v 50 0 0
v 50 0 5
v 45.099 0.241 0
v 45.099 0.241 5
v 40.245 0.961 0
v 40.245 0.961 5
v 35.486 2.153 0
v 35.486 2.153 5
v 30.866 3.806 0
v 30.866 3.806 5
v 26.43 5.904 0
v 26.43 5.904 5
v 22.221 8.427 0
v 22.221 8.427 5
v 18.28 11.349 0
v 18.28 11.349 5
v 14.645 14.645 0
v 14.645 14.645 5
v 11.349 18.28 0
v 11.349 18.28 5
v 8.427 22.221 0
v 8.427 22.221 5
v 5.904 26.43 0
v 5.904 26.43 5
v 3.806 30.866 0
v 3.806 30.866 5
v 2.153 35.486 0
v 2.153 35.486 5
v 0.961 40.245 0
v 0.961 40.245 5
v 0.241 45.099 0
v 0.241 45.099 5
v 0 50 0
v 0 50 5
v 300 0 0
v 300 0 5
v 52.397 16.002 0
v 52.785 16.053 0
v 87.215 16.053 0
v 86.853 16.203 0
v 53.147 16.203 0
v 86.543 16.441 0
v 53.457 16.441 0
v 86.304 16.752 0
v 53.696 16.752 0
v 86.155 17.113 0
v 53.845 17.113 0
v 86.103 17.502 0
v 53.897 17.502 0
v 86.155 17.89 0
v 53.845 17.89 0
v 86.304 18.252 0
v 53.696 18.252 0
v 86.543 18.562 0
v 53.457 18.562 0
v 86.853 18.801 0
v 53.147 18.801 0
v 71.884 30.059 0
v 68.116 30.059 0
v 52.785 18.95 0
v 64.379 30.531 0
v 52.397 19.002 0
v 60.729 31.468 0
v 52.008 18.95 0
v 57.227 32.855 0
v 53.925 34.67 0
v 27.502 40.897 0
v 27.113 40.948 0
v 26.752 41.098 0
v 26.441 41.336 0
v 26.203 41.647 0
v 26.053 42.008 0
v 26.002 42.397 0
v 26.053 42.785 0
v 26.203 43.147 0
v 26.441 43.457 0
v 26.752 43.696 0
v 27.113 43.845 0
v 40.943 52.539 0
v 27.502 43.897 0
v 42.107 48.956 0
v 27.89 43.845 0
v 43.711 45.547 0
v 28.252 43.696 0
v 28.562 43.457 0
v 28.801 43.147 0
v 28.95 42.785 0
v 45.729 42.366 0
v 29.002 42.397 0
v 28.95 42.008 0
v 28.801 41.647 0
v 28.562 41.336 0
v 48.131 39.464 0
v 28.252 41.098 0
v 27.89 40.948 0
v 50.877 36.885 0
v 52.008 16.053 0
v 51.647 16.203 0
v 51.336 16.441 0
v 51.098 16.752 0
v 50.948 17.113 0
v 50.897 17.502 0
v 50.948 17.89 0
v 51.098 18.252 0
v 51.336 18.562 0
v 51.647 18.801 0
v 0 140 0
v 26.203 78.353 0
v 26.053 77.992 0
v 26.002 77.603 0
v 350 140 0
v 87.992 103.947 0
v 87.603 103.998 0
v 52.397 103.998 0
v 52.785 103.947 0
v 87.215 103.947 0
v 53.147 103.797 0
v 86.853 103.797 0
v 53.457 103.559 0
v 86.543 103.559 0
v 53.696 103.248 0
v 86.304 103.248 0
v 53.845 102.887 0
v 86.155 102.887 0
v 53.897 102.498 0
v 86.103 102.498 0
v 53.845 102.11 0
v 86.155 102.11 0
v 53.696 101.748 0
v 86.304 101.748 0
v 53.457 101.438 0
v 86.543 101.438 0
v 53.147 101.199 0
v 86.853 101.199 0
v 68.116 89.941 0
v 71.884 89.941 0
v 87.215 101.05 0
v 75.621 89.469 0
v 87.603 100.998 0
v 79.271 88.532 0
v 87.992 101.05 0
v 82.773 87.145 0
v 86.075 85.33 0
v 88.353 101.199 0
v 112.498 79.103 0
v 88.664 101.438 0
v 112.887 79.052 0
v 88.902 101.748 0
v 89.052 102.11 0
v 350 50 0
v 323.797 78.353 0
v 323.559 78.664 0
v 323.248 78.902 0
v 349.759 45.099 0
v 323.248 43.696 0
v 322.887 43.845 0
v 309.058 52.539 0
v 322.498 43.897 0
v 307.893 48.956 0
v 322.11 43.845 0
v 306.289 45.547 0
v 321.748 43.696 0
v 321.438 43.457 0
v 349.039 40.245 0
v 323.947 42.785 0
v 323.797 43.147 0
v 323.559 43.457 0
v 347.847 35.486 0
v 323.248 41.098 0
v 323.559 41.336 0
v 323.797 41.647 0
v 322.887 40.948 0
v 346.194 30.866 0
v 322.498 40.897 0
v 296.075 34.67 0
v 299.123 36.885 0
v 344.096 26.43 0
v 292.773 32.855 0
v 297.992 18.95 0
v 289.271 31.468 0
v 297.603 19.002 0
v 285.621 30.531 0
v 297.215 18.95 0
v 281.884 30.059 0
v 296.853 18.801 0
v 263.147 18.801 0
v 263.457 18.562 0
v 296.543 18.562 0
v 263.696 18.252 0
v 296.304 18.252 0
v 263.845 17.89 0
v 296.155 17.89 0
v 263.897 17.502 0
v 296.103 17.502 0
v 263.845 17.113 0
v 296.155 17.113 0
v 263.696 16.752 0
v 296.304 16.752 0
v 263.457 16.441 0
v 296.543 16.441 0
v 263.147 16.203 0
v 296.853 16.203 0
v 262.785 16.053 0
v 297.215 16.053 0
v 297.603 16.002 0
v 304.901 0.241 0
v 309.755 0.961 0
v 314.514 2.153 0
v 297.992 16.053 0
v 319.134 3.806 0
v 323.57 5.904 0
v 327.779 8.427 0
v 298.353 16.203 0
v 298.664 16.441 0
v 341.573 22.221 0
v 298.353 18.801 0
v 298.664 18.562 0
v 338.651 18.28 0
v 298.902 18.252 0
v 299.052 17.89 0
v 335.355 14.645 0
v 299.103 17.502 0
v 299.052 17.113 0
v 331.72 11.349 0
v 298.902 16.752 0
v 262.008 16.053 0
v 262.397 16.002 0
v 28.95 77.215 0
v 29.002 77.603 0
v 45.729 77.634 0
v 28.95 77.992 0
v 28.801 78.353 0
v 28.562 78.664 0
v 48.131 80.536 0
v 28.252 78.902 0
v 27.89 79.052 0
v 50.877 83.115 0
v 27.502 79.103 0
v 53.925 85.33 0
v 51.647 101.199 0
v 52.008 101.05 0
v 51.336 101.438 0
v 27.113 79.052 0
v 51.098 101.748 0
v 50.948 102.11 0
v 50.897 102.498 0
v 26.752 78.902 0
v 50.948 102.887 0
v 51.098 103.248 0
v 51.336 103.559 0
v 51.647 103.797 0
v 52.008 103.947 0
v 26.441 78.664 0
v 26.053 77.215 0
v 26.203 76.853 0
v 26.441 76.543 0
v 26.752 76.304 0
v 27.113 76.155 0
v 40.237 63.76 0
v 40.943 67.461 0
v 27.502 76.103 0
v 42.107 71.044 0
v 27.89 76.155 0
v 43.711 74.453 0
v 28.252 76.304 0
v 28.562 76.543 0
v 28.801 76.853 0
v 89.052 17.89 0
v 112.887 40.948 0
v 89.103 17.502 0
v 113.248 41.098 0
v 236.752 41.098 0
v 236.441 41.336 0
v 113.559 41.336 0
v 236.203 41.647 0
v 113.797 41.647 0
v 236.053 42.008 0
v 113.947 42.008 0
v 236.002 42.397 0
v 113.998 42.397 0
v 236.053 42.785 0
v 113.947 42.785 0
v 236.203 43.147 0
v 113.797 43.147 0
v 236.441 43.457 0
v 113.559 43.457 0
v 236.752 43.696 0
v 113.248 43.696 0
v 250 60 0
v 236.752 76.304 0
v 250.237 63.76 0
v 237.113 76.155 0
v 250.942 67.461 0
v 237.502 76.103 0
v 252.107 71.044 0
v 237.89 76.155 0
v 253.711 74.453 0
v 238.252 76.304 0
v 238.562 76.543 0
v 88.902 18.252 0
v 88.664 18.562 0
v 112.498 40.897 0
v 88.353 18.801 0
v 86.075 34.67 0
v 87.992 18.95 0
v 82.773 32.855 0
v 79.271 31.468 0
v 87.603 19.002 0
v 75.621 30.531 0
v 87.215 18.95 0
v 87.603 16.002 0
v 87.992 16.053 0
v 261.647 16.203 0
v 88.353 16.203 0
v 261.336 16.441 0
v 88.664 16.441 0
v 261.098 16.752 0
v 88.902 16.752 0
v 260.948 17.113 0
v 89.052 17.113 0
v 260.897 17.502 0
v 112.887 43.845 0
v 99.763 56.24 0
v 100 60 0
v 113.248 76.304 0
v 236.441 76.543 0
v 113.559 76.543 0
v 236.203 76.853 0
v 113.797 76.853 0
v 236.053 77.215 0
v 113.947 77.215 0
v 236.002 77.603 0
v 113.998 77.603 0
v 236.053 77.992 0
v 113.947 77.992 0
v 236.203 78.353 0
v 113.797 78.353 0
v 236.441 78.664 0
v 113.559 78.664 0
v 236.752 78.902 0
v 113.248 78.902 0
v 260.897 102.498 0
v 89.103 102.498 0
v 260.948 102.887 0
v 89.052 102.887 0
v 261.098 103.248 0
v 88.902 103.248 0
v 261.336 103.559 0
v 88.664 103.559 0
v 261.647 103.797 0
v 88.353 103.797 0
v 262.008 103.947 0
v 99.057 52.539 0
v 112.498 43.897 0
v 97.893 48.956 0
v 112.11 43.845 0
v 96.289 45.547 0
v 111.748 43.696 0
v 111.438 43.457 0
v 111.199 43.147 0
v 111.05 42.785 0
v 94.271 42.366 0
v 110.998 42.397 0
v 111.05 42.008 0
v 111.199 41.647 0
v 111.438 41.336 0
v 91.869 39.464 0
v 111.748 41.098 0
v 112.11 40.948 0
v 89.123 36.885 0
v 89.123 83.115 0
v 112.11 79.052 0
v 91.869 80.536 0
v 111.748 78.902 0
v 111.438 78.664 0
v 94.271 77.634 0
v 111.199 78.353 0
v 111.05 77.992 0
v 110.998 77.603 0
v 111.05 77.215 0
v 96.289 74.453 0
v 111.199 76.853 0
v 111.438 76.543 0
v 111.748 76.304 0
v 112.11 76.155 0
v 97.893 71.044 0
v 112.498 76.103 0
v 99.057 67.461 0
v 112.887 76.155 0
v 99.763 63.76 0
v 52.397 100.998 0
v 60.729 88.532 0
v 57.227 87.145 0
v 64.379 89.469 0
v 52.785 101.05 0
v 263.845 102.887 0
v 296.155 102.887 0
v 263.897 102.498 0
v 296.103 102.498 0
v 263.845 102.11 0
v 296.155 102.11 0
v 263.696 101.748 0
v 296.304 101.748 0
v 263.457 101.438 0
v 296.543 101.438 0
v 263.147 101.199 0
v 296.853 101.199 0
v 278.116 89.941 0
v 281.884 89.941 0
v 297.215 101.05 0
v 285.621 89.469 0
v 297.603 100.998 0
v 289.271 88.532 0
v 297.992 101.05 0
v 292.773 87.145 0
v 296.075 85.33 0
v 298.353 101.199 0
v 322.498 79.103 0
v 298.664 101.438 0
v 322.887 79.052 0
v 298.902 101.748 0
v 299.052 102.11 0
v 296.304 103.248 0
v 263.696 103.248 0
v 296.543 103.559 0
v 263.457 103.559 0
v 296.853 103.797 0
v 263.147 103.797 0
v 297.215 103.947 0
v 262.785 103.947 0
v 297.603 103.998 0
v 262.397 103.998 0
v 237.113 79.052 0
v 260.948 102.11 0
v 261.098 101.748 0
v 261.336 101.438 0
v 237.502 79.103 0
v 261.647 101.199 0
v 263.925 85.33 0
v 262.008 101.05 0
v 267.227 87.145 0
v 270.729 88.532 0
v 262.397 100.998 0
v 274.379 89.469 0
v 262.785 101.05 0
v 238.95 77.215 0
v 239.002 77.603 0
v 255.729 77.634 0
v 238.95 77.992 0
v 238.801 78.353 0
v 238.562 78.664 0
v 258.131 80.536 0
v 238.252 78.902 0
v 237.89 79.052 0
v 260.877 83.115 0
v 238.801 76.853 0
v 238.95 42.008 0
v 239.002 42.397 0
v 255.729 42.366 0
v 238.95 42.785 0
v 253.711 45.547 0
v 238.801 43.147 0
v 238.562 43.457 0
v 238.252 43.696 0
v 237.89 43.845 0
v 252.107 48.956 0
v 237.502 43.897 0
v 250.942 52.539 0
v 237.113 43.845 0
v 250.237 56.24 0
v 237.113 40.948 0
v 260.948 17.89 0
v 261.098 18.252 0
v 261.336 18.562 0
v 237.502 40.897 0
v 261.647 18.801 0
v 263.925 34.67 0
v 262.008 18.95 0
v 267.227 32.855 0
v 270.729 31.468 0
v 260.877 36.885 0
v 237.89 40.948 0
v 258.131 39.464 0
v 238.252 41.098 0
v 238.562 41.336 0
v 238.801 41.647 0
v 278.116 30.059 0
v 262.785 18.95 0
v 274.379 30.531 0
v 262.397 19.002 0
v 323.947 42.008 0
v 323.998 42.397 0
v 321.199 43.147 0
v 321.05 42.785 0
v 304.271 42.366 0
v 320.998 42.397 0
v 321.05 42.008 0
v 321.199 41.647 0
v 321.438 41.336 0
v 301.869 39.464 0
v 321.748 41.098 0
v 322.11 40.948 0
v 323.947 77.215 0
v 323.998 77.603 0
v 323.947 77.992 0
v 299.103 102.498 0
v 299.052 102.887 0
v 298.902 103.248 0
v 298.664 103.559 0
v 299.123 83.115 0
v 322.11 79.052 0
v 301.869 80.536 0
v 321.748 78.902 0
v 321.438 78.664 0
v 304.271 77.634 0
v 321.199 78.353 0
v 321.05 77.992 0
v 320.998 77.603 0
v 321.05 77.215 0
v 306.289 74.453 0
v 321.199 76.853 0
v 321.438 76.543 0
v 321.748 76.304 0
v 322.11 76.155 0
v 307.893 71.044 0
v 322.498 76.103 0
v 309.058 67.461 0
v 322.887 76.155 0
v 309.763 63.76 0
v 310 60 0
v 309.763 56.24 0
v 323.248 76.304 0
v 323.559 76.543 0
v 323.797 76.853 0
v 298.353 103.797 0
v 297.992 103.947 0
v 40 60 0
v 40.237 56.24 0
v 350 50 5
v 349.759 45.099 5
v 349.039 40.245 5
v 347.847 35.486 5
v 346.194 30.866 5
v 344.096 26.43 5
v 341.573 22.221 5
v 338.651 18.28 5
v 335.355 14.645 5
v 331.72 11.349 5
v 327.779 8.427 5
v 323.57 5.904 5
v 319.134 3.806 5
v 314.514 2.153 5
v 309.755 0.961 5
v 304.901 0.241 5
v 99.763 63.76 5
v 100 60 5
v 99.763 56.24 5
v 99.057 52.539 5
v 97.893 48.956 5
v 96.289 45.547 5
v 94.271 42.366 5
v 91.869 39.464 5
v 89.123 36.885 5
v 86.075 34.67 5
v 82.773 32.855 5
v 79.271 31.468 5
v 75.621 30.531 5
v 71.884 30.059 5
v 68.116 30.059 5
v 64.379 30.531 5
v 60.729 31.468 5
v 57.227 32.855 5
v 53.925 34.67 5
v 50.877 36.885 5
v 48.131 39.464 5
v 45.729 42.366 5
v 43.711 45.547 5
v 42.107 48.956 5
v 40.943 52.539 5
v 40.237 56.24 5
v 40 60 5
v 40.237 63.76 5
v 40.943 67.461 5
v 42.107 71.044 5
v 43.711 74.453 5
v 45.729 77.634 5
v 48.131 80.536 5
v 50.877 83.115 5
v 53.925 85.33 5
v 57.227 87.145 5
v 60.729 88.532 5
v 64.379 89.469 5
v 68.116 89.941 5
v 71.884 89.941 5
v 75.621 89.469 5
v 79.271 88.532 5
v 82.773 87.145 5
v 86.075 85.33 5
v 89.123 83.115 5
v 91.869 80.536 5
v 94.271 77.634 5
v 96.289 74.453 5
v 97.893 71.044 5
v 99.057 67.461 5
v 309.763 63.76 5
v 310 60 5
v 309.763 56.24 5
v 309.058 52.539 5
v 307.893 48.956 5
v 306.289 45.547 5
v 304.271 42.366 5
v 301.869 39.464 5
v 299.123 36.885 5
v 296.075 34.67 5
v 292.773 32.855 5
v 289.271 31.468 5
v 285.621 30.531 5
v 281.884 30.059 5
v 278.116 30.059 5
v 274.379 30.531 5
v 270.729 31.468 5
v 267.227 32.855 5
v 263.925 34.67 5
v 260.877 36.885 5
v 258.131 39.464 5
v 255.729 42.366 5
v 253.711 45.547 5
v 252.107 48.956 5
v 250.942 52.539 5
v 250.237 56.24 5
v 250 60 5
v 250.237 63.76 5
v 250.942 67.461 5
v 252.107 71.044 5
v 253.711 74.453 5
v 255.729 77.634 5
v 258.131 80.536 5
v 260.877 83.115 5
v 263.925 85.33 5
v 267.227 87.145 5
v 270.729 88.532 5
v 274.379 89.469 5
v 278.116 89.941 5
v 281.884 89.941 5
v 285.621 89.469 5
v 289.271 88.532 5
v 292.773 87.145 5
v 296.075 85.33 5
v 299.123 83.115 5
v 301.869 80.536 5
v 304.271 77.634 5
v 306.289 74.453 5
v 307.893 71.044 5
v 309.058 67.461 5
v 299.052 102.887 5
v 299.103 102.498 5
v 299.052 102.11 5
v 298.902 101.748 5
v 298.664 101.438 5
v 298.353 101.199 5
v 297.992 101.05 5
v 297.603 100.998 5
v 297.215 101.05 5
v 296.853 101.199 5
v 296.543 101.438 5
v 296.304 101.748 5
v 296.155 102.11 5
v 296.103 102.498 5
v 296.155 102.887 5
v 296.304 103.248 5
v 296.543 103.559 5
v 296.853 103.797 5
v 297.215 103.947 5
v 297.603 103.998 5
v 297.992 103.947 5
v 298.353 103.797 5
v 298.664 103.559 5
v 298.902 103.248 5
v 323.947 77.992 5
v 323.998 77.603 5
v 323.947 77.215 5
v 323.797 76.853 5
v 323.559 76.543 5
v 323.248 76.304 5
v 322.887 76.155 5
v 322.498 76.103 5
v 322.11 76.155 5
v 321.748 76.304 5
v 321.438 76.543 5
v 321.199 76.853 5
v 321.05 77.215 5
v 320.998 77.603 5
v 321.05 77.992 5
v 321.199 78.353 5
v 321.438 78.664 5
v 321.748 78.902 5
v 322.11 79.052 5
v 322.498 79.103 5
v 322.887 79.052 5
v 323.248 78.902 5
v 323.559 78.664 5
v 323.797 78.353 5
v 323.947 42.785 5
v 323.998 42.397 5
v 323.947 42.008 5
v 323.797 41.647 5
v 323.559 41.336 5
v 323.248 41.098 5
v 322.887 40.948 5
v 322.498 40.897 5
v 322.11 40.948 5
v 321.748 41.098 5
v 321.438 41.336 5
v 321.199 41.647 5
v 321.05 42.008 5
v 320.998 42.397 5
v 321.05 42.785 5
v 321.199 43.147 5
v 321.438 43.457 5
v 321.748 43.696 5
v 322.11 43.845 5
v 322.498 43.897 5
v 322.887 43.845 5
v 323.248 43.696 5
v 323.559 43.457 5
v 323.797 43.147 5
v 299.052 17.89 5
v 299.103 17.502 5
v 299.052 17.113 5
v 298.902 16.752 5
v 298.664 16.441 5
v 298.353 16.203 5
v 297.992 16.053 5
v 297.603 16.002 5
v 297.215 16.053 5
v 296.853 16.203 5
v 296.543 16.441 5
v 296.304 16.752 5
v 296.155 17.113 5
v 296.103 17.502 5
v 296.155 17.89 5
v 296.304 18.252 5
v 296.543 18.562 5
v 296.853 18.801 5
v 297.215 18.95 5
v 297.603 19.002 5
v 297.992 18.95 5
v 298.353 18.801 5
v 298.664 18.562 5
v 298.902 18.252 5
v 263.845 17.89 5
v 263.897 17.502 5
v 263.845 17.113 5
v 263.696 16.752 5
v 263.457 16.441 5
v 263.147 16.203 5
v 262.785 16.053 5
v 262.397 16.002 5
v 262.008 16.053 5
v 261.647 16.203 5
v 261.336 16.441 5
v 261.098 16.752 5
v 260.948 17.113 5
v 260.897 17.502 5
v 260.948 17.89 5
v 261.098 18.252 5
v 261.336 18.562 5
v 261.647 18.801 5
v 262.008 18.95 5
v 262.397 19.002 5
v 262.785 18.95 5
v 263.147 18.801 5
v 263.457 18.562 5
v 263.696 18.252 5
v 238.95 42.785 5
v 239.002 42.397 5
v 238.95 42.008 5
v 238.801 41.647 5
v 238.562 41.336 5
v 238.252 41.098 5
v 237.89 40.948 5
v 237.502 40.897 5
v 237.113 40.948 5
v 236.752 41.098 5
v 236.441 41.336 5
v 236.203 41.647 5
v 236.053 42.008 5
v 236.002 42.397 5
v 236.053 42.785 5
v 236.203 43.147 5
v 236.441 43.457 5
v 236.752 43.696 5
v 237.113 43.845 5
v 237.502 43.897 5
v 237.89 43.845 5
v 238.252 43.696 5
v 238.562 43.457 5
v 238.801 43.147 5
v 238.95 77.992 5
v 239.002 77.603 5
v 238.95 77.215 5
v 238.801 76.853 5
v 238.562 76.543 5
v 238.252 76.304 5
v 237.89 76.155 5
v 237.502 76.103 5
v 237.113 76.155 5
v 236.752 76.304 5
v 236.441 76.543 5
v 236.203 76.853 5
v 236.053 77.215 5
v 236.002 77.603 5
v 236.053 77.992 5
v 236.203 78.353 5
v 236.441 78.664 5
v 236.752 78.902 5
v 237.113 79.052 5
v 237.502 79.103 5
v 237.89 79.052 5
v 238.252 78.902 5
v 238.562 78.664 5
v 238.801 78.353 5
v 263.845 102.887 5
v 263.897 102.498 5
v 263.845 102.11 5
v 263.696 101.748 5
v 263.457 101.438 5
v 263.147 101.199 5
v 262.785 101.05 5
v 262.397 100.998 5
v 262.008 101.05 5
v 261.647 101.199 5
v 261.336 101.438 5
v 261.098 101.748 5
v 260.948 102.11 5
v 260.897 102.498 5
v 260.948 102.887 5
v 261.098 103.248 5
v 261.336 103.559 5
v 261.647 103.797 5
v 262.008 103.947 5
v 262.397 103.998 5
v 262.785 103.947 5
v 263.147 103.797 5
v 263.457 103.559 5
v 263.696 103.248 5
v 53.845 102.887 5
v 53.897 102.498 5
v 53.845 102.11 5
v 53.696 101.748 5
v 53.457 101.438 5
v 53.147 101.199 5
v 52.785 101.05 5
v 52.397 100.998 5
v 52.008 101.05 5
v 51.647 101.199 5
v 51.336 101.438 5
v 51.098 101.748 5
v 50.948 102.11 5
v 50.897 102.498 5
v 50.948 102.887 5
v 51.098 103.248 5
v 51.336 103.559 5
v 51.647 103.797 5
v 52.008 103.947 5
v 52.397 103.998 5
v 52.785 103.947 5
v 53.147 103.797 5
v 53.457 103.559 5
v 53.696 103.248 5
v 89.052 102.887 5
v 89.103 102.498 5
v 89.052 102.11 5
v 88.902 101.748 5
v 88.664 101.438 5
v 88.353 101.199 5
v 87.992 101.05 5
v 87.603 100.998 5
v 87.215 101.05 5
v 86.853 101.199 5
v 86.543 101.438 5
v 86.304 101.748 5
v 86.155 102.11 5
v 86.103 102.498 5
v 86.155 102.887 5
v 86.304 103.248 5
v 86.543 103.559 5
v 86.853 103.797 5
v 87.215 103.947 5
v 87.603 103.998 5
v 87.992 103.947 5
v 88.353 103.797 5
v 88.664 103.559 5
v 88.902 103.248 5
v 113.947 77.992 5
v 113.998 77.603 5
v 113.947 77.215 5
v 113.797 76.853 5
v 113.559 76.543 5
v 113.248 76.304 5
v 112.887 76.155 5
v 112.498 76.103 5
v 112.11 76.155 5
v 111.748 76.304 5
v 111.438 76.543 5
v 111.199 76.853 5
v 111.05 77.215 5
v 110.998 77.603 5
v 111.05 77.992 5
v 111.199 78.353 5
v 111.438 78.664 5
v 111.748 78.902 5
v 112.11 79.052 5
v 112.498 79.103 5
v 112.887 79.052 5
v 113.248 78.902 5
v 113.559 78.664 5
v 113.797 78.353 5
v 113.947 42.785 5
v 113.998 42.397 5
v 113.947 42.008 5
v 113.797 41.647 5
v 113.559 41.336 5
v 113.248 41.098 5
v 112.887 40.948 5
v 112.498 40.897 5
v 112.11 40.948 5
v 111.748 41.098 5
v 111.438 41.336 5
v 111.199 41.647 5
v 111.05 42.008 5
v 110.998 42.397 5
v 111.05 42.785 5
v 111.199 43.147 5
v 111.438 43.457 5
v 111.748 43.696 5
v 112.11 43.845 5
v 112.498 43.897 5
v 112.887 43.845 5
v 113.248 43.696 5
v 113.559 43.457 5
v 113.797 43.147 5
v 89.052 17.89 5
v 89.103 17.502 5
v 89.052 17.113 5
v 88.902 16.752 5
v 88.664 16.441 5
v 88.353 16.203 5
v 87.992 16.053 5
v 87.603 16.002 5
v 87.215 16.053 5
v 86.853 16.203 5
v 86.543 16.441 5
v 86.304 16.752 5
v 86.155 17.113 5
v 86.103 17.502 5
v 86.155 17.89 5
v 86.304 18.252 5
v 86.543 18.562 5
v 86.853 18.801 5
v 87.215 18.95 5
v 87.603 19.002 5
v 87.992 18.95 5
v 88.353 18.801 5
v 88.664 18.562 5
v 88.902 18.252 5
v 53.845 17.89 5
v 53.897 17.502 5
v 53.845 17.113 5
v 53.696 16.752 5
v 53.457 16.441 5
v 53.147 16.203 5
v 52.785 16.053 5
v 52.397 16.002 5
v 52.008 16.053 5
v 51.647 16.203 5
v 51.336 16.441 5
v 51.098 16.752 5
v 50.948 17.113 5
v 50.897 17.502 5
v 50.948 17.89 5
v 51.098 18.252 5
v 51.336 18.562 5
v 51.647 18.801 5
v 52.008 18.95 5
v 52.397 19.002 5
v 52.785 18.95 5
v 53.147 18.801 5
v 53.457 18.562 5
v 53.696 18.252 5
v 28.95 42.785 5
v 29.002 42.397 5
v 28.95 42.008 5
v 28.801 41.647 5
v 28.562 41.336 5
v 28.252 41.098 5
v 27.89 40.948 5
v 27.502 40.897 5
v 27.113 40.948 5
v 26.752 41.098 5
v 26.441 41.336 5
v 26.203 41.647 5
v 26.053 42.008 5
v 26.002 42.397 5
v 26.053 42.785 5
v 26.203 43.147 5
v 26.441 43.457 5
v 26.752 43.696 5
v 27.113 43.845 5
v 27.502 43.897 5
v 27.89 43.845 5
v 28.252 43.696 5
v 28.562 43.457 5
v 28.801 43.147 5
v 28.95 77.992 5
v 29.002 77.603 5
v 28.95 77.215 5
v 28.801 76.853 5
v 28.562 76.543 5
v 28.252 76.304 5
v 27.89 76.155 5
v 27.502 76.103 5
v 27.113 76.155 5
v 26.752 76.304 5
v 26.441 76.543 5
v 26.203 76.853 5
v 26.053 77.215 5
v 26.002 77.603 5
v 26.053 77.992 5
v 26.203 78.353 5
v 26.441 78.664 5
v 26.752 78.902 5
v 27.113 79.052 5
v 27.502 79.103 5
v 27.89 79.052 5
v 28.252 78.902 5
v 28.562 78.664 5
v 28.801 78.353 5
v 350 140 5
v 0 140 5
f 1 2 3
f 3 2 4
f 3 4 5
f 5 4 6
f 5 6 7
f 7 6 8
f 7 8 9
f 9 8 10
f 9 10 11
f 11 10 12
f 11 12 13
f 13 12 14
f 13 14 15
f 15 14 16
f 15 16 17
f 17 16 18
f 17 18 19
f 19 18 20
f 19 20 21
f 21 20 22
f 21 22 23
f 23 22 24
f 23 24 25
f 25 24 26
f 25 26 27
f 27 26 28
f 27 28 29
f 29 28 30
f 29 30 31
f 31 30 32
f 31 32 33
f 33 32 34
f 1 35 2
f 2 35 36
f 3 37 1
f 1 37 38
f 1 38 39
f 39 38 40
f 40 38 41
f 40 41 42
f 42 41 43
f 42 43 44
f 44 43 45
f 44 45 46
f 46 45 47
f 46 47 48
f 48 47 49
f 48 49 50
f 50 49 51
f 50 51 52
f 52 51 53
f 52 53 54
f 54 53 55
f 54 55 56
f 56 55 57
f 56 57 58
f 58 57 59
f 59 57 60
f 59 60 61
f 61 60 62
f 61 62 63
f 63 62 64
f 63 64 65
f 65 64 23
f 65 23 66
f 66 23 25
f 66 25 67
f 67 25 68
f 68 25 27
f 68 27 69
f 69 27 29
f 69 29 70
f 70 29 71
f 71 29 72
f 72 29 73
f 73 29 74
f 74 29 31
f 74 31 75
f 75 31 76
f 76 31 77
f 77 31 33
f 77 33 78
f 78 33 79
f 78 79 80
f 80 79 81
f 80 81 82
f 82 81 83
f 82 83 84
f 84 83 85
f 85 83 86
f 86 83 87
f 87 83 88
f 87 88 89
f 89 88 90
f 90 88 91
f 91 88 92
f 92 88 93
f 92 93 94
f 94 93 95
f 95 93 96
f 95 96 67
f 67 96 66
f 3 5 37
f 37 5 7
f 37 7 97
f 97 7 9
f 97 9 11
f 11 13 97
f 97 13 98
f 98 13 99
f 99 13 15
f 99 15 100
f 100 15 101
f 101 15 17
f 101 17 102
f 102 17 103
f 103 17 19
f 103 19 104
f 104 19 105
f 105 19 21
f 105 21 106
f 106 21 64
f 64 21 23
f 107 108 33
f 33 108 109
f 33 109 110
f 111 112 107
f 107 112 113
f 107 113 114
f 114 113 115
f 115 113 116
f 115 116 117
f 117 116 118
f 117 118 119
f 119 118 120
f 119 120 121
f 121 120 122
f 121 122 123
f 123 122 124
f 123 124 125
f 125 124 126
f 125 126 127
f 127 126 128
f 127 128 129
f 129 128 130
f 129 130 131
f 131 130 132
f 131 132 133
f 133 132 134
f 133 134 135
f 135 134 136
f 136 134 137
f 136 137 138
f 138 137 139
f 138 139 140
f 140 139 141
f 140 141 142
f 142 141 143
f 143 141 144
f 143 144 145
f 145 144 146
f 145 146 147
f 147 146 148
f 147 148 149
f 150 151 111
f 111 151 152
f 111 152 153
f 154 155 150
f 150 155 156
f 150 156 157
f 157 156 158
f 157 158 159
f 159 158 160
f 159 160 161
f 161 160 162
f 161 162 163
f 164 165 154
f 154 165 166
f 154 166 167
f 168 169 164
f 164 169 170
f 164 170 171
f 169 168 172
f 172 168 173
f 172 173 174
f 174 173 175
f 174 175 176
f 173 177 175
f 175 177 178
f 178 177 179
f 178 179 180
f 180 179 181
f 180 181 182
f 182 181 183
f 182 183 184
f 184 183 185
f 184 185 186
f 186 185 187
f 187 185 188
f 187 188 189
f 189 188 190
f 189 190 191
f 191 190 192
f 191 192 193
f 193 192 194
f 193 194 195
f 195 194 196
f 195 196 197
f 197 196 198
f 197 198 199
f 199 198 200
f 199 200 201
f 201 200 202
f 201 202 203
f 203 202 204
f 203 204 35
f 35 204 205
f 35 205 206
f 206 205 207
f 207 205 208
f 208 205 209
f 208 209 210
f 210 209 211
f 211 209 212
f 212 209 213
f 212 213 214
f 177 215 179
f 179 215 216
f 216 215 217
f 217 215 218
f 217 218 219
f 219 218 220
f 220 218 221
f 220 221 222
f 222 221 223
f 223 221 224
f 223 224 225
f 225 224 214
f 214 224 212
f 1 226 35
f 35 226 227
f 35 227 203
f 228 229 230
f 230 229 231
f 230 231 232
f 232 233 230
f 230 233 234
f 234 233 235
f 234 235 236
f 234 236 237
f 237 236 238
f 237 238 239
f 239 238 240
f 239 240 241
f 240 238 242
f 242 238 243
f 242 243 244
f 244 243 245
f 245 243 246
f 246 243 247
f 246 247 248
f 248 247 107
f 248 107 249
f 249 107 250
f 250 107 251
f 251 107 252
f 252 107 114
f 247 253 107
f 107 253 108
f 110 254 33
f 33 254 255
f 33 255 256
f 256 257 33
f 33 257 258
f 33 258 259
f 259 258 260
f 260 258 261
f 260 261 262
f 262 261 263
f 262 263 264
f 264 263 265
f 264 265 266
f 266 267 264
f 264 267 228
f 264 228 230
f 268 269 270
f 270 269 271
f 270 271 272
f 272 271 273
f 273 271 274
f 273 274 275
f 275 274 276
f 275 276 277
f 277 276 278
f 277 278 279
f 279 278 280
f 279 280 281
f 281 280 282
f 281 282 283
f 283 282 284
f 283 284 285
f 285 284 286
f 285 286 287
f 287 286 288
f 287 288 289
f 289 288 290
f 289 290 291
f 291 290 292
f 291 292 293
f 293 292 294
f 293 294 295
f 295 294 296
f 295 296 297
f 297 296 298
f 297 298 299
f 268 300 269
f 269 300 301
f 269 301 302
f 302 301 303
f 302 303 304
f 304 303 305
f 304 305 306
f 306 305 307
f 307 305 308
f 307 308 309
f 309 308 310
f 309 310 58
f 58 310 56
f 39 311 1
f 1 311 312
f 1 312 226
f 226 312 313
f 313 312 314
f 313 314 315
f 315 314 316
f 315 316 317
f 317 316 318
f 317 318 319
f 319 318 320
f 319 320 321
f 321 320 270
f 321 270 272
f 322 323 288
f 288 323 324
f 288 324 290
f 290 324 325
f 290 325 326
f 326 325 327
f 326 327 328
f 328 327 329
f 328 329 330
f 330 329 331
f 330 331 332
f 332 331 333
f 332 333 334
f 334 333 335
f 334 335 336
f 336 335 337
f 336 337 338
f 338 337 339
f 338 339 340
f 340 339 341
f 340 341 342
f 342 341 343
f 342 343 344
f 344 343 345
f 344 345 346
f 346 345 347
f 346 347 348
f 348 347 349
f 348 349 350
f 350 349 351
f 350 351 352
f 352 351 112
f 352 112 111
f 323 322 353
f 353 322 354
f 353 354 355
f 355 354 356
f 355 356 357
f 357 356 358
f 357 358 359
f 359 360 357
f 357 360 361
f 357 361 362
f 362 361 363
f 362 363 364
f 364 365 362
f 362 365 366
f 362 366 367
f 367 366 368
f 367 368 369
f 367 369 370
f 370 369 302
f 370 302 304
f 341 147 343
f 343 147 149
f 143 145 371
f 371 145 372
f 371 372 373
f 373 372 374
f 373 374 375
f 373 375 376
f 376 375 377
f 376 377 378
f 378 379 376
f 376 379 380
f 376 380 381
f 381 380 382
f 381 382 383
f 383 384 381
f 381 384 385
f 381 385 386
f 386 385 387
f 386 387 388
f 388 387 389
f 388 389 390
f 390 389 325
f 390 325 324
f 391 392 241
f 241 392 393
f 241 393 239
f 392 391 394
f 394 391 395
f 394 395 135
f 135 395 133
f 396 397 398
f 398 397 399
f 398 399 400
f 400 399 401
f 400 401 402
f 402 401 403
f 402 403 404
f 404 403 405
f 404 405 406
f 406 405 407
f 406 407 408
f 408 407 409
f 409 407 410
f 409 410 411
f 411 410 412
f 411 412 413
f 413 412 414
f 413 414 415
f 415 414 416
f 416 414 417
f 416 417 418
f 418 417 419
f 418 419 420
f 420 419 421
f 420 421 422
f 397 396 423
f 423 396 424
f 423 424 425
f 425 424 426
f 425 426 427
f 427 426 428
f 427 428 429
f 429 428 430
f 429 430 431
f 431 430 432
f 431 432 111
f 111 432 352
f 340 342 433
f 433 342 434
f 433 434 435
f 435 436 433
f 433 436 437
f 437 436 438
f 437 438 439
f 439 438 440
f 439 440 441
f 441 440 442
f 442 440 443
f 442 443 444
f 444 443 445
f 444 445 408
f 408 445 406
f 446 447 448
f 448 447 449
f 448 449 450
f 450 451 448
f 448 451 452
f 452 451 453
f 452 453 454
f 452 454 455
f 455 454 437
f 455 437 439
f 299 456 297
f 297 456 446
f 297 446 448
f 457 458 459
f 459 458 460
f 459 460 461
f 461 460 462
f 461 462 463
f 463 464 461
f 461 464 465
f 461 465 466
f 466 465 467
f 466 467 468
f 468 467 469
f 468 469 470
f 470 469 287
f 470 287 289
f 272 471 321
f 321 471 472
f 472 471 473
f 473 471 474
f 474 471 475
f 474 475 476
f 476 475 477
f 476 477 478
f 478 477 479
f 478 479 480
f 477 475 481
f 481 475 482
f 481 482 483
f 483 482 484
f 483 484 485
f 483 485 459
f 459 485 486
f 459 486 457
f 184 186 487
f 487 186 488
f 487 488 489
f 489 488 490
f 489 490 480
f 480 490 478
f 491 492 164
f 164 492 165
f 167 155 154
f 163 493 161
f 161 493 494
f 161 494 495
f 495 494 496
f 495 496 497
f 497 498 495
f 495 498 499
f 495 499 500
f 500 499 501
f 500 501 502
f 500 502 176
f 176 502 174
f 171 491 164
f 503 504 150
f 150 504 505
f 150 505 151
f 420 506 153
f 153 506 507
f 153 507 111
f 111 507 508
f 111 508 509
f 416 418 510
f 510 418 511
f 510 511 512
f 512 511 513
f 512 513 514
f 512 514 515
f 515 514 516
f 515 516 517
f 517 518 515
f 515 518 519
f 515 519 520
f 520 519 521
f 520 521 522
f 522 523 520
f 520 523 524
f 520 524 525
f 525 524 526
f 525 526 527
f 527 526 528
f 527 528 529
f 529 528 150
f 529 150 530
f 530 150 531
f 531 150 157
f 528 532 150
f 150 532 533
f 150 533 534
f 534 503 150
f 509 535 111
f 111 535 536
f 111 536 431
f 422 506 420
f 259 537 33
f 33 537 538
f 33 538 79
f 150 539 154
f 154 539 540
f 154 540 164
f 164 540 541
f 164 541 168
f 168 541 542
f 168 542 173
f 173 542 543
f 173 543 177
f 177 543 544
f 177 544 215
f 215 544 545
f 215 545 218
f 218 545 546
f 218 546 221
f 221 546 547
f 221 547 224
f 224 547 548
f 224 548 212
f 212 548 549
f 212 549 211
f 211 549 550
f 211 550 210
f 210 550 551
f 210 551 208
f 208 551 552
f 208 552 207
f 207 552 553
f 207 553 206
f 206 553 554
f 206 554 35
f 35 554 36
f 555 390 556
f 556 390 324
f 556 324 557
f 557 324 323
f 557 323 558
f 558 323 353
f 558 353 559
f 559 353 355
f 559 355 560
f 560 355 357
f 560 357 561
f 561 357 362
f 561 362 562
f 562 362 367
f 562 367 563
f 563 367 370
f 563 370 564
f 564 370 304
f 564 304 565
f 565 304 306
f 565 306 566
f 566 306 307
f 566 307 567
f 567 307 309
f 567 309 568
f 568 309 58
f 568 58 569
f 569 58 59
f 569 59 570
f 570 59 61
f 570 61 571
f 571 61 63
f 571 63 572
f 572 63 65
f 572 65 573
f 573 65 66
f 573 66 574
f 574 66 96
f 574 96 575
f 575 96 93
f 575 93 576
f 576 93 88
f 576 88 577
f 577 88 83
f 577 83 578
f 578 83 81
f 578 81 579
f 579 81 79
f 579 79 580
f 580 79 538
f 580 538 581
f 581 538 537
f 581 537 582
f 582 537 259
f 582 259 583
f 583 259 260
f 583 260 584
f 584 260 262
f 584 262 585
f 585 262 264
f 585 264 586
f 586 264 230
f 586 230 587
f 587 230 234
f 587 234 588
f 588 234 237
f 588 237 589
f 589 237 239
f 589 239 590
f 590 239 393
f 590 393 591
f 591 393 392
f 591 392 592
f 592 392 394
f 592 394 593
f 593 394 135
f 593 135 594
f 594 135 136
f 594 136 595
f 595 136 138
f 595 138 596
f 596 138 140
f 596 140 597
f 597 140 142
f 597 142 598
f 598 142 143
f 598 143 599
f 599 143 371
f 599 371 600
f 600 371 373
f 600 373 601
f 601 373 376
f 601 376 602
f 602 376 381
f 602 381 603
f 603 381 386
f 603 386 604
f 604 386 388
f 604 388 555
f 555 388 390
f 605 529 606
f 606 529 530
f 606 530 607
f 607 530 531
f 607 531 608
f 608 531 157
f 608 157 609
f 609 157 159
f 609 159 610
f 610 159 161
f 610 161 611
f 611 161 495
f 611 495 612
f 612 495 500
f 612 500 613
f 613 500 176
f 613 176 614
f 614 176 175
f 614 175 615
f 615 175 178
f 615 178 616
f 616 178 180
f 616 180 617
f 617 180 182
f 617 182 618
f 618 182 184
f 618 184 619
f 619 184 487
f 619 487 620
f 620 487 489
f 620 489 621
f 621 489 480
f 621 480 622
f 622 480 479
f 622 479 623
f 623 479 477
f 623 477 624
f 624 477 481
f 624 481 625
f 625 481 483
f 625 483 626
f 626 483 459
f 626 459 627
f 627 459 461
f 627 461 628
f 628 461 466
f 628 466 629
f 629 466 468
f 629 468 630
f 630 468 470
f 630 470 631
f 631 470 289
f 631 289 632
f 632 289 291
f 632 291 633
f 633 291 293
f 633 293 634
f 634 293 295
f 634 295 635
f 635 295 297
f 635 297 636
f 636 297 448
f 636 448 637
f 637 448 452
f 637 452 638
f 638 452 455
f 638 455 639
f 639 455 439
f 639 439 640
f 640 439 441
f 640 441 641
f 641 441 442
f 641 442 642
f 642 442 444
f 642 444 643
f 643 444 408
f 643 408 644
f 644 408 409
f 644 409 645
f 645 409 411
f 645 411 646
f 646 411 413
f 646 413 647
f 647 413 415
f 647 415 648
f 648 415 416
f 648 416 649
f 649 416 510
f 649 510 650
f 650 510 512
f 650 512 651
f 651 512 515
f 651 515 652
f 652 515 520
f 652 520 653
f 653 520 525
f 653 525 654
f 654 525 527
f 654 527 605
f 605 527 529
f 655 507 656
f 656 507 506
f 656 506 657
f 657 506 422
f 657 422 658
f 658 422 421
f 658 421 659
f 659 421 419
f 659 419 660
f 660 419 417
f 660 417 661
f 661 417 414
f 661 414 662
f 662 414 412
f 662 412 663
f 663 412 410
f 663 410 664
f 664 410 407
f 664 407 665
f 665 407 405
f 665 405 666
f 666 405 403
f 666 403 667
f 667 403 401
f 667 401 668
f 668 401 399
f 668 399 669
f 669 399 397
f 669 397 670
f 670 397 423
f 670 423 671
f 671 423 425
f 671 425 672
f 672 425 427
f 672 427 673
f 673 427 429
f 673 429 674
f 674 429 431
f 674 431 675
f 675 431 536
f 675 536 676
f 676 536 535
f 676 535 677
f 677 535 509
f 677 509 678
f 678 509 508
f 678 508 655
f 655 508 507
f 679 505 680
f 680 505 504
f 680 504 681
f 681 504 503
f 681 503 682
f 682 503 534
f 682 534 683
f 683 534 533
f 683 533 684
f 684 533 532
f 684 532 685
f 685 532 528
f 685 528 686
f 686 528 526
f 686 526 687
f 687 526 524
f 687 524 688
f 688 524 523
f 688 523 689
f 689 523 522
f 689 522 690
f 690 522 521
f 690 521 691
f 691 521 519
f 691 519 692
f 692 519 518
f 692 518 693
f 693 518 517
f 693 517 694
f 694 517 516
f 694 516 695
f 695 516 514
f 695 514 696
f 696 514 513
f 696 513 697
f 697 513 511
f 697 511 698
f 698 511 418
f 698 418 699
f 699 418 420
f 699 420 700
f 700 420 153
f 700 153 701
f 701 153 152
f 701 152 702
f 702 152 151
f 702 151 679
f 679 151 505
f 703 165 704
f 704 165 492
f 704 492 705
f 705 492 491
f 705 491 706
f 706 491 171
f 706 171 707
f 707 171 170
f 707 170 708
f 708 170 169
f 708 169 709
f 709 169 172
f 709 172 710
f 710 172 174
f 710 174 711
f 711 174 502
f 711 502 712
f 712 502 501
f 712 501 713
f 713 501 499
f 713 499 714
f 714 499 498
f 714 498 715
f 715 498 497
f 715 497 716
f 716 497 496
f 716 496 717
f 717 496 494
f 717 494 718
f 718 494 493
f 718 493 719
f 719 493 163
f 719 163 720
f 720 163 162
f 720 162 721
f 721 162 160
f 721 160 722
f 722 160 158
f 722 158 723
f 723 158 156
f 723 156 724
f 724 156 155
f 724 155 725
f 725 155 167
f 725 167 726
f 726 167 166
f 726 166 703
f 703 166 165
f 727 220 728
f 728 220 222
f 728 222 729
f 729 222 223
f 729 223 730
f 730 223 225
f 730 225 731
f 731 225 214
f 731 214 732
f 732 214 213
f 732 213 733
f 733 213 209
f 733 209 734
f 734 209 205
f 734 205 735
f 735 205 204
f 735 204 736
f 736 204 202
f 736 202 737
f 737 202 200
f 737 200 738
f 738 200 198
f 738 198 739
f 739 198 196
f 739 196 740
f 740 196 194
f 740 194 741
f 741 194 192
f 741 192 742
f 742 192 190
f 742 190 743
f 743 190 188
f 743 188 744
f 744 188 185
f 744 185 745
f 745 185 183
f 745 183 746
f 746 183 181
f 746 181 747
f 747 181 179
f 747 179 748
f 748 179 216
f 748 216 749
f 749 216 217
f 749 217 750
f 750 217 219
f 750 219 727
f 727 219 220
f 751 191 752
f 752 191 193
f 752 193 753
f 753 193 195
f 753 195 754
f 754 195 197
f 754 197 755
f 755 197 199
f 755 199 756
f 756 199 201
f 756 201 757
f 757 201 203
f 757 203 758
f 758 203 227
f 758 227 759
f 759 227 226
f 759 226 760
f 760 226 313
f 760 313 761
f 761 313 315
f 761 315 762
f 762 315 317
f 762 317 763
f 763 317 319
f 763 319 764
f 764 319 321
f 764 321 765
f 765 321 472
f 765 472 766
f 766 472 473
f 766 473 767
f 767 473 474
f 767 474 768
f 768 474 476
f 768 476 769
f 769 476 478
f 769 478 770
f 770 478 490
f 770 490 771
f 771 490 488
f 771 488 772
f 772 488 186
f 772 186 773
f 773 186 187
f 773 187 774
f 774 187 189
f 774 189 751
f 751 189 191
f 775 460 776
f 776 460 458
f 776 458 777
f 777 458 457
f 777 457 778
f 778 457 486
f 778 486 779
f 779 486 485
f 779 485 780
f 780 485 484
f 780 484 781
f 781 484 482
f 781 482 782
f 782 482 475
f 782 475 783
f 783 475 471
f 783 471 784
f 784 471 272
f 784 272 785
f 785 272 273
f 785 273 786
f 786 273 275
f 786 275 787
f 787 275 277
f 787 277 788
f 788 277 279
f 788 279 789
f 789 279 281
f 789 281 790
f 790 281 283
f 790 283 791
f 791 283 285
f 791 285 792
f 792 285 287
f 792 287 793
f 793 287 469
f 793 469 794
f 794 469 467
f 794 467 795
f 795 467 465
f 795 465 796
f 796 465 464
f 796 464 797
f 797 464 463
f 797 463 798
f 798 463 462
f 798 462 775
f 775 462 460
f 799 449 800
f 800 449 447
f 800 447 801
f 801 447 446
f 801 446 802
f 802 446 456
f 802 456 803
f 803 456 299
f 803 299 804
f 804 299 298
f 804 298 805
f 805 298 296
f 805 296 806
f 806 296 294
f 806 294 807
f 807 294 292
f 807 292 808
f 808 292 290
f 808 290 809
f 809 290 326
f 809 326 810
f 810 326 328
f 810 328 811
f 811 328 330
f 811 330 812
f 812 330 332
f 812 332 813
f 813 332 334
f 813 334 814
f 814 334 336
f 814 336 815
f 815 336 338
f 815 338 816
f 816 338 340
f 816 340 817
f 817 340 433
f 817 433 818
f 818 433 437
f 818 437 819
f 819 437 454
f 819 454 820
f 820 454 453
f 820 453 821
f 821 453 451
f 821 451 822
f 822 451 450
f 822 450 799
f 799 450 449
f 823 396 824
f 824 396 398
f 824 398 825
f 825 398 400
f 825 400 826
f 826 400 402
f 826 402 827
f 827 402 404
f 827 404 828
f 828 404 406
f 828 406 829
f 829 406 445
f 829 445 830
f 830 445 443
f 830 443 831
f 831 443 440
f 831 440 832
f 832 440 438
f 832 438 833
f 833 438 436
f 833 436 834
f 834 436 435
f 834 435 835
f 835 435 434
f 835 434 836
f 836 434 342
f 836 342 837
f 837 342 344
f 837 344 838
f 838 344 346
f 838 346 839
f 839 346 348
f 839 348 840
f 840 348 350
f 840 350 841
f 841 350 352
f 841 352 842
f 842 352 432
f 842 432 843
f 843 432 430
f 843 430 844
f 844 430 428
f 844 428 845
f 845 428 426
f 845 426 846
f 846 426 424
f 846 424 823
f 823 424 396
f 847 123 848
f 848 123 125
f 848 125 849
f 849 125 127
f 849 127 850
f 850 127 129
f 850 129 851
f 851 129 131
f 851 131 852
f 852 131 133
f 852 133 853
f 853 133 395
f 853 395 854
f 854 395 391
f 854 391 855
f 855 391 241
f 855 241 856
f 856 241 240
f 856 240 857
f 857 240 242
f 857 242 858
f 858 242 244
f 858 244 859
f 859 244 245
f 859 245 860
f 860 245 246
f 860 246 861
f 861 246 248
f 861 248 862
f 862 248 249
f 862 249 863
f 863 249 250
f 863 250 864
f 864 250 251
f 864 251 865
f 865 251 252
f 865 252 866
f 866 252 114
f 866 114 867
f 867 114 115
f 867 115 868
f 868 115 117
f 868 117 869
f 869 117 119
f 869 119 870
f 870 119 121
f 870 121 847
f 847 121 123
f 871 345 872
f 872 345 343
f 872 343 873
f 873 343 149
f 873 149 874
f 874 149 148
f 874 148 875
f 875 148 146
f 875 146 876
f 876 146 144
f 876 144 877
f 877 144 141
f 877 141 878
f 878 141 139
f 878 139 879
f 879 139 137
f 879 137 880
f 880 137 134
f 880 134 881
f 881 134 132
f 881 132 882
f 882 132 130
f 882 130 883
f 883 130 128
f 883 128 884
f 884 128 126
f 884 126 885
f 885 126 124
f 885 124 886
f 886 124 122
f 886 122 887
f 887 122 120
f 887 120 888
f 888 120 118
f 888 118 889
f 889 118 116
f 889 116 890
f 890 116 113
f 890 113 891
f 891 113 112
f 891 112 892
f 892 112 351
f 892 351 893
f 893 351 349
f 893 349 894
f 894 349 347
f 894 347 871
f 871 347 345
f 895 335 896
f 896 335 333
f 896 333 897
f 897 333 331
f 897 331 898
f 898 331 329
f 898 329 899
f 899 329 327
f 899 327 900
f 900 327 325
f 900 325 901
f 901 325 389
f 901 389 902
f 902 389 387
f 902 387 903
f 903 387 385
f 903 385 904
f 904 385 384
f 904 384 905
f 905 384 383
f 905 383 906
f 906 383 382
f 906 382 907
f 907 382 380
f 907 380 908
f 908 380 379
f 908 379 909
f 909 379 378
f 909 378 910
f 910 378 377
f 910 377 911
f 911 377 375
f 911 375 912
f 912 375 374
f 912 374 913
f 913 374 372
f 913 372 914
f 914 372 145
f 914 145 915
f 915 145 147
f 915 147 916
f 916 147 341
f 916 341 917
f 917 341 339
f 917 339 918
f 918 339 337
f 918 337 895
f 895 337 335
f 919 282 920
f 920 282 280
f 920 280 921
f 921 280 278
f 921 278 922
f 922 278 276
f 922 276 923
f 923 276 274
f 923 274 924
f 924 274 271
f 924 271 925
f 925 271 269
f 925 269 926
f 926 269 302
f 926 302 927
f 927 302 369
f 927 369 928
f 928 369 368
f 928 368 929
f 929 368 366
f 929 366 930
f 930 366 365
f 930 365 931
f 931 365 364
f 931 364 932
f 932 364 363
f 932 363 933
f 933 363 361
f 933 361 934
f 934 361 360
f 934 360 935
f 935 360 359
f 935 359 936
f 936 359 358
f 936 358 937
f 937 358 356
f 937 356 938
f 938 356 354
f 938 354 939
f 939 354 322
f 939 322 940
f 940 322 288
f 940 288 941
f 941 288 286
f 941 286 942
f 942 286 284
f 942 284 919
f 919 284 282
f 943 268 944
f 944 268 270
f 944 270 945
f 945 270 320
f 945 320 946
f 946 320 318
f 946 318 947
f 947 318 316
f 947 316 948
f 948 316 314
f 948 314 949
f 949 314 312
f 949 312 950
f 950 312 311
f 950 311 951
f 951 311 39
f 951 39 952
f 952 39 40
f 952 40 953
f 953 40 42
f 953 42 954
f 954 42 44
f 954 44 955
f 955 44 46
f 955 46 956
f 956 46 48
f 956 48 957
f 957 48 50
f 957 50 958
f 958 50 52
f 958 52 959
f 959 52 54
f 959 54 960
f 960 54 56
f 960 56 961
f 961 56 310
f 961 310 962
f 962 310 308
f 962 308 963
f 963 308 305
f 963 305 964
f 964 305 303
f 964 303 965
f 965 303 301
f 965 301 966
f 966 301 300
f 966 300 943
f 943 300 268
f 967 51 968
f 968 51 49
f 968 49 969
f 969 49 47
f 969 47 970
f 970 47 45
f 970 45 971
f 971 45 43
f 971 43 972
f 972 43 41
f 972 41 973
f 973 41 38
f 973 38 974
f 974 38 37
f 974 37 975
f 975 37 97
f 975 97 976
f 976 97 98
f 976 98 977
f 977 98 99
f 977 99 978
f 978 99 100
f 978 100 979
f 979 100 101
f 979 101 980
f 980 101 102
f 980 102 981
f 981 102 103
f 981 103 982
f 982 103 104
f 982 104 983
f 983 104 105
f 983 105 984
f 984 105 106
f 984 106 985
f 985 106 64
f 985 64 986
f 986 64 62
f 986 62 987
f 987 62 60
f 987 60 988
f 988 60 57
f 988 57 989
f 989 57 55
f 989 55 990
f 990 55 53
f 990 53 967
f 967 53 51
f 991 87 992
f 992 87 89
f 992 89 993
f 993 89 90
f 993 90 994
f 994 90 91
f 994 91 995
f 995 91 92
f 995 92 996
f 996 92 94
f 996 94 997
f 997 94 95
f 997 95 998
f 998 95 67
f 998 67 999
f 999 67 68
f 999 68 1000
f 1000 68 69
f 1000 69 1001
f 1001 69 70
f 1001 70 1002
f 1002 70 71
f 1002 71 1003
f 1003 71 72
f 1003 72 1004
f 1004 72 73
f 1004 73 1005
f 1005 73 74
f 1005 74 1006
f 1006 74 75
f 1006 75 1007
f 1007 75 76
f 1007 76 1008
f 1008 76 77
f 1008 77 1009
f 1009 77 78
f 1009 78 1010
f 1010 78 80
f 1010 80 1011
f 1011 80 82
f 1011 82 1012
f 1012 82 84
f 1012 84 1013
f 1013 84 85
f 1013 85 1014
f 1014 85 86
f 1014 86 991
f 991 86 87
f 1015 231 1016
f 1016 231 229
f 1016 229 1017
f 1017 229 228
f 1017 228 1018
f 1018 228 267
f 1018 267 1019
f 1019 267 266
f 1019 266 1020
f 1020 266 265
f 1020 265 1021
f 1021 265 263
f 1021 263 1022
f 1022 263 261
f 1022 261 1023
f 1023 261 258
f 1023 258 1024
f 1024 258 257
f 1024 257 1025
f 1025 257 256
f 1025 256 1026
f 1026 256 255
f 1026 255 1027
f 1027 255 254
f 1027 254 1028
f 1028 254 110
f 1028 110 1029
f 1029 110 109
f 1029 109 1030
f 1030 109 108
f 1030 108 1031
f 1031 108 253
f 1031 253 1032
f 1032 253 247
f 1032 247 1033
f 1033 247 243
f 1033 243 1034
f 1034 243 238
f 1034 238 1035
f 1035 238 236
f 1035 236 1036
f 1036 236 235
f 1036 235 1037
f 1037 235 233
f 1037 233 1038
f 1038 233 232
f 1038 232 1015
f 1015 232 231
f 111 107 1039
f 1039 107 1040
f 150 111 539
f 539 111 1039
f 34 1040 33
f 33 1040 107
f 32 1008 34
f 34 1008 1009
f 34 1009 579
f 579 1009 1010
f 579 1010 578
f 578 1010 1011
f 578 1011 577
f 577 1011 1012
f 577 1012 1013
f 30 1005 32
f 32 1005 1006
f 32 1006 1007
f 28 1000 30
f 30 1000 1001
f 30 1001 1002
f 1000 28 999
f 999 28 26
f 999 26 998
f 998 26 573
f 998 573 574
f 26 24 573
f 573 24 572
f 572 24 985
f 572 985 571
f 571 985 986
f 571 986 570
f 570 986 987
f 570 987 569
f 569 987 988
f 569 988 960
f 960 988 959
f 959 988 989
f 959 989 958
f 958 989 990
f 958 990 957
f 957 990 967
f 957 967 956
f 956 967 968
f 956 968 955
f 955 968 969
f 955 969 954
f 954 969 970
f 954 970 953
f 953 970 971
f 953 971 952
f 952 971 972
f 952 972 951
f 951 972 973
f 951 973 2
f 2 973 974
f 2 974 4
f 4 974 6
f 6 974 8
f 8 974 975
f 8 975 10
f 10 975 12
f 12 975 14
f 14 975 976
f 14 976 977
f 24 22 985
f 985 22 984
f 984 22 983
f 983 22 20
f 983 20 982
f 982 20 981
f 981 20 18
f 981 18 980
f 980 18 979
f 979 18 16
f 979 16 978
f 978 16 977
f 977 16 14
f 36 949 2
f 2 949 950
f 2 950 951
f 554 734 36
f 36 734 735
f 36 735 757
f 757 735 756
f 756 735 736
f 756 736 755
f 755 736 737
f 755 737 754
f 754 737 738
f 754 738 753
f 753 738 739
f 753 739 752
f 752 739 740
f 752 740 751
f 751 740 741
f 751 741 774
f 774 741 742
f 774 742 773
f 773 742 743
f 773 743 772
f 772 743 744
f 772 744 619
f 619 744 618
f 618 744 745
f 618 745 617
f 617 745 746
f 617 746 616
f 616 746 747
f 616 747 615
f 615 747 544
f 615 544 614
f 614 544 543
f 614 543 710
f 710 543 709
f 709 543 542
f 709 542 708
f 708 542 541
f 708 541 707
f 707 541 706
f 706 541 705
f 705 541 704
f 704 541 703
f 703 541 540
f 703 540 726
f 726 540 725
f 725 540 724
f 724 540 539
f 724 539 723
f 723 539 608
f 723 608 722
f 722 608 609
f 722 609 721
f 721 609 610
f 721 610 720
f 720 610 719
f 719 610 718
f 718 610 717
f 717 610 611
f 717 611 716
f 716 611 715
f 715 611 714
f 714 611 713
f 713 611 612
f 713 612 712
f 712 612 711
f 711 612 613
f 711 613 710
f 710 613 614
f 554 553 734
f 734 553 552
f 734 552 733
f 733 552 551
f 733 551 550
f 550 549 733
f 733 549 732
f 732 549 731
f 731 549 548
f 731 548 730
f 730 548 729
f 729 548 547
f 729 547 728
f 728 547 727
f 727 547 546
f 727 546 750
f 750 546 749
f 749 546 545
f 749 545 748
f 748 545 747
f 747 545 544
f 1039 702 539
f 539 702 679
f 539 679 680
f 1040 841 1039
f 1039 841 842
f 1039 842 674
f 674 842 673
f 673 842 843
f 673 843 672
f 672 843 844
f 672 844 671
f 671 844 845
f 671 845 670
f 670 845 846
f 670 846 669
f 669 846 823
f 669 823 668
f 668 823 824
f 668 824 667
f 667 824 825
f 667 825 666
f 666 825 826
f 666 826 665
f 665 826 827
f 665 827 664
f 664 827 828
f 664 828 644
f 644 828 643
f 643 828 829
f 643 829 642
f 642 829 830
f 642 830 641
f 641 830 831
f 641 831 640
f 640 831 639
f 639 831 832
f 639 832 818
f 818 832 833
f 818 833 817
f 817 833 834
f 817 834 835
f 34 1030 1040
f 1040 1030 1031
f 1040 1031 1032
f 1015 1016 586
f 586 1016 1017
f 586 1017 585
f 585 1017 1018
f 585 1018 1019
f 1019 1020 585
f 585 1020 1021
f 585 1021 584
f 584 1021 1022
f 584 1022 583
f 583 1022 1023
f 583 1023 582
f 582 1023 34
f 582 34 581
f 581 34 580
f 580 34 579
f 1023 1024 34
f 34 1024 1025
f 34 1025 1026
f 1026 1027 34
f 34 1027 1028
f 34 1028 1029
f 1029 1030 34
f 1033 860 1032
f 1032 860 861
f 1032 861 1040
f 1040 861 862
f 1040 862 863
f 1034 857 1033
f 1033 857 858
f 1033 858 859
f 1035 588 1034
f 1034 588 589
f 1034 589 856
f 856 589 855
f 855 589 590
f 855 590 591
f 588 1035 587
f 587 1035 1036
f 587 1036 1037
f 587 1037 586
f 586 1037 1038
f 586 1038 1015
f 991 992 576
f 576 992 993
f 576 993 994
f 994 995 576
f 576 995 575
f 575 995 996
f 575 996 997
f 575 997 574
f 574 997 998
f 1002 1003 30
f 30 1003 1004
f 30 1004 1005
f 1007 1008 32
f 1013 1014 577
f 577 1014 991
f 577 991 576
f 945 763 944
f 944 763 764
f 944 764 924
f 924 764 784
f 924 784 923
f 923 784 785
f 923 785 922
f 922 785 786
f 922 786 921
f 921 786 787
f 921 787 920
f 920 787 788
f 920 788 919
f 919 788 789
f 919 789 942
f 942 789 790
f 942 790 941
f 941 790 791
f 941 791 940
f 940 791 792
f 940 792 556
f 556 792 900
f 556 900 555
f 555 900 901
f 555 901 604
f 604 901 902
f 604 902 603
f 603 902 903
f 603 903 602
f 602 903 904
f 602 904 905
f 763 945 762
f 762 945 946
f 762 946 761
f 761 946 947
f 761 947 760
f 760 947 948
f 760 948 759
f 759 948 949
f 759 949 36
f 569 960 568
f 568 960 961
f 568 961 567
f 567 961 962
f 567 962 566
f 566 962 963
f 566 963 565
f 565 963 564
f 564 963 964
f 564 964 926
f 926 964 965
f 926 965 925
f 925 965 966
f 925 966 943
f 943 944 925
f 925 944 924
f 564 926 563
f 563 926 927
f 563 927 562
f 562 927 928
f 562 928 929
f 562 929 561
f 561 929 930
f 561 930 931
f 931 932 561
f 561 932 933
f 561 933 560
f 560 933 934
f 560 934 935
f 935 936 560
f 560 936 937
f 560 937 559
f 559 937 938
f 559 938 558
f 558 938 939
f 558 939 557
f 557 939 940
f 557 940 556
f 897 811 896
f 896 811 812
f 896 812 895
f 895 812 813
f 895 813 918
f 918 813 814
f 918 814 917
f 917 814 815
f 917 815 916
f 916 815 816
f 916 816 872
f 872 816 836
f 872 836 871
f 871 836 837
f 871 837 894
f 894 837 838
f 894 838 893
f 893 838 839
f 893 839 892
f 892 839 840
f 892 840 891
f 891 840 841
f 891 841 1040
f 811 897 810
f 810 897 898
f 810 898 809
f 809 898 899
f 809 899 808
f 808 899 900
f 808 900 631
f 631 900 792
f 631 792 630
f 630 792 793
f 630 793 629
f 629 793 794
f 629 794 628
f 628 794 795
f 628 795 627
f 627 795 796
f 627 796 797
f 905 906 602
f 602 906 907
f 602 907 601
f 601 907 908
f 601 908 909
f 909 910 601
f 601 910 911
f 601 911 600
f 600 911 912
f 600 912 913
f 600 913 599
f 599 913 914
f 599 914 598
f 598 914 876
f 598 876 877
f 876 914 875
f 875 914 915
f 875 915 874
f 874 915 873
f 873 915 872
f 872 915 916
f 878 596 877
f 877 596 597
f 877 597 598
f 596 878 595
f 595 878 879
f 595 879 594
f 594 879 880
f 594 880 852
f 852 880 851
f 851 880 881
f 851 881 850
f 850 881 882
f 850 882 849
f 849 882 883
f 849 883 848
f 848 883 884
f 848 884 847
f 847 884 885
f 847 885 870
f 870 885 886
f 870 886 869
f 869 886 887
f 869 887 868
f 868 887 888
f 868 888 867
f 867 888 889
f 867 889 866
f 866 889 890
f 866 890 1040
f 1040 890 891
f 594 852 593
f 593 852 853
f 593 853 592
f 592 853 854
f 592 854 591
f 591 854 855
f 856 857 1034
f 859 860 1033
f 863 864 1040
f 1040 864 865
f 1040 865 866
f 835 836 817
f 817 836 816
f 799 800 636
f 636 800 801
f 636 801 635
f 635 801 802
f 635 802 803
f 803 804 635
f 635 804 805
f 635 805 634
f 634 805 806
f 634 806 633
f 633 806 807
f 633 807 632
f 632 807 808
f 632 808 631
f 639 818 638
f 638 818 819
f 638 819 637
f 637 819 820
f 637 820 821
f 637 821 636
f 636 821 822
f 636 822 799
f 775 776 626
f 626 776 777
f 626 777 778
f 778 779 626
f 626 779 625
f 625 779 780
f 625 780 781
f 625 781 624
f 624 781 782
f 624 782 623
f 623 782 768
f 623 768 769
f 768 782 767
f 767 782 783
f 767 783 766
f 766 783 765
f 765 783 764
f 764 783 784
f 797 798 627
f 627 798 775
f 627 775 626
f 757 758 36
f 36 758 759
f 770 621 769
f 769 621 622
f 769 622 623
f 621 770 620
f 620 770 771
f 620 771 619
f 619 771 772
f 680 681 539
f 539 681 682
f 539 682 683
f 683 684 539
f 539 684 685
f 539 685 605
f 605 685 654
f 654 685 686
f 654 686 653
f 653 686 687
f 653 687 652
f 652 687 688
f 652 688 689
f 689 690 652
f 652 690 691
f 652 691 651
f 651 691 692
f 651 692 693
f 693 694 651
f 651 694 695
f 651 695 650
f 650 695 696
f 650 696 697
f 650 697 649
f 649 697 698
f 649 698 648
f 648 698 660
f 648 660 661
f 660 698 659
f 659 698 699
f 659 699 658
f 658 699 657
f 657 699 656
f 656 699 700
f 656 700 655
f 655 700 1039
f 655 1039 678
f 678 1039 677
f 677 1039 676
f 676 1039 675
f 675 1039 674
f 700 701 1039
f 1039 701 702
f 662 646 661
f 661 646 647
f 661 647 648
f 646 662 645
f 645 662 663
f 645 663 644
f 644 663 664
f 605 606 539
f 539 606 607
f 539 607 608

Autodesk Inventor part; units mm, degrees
ref_plane "YZ Plane" through (0, 0, 0) normal (1, 0, 0) x (0, 1, 0)
ref_plane "XZ Plane" through (0, 0, 0) normal (0, 1, 0) x (-1, 0, 0)
ref_plane "XY Plane" through (0, 0, 0) normal (0, 0, 1) x (1, 0, 0)
sketch "スケッチ1" plane through (0, 0, 0) normal (0, 0, 1) x (1, 0, 0)
  line L0 (0, 0) -> (350, 0)
  line L1 (350, 0) -> (350, 140)
  line L2 (350, 140) -> (0, 140)
  circle A0 centre (70, 60) radius 46
  circle A1 centre (280, 60) radius 46
  line L3 (0, 140) -> (0, 0)
  line L4 (70, 60) -> (70, 156.3161)
  line L5 (280, 60) -> (280, 147.5689)
  line L6 (70, 60) -> (45.2011, 119.8698)
  line L7 (280, 60) -> (258.2896, 112.4136)
  circle A2 centre (52.3966, 102.4985) radius 1.5
  circle A3 centre (262.3966, 102.4985) radius 1.5
  circle A4 centre (27.5015, 77.6034) radius 1.5
  circle A5 centre (27.5015, 42.3966) radius 1.5
  circle A6 centre (52.3966, 17.5015) radius 1.5
  circle A7 centre (87.6034, 17.5015) radius 1.5
  circle A8 centre (112.4985, 42.3966) radius 1.5
  circle A9 centre (112.4985, 77.6034) radius 1.5
  circle A10 centre (87.6034, 102.4985) radius 1.5
  circle A11 centre (237.5015, 77.6034) radius 1.5
  circle A12 centre (237.5015, 42.3966) radius 1.5
  circle A13 centre (262.3966, 17.5015) radius 1.5
  circle A14 centre (297.6034, 17.5015) radius 1.5
  circle A15 centre (322.4985, 42.3966) radius 1.5
  circle A16 centre (322.4985, 77.6034) radius 1.5
  circle A17 centre (297.6034, 102.4985) radius 1.5
  circle A18 centre (70, 60) radius 30
  circle A19 centre (280, 60) radius 30
  dimension "d5" = 92
  dimension "d6" = 92
  dimension "d0" = 350
  dimension "d1" = 140
  dimension "d2" = 60
  dimension "d3" = 60
  dimension "d9" = 70
  dimension "d10" = 70
  dimension "d11" = 22.5
  dimension "d12" = 22.5
  dimension "d13" = 3
  dimension "d14" = 3
  dimension "d17" = 360
  dimension "d21" = 360
  dimension "d23" = 60
  dimension "d24" = 60
extrude "押し出し1" add sketch "スケッチ1" along normal blind 5 contours A1 A17 A16 A15 A14 A13 A12 A11 A3 L7 A19 L5 | L5 A19 L7 A3 A1 | A0 A10 A9 A8 A7 A6 A5 A4 A2 L6 A18 L4 | L4 A18 L6 A2 A0 | L3 L2 L1 L0
fillet "フィレット2" radius 50 2 edges at (350, 0, 2.5) (0, 0, 2.5)
equation "\"d6\" = d5"
equation "\"d2\" = d3"
equation "\"d10\" = d9"
properties part number "b_right-wr2left-wr__legparts_09(six)"
